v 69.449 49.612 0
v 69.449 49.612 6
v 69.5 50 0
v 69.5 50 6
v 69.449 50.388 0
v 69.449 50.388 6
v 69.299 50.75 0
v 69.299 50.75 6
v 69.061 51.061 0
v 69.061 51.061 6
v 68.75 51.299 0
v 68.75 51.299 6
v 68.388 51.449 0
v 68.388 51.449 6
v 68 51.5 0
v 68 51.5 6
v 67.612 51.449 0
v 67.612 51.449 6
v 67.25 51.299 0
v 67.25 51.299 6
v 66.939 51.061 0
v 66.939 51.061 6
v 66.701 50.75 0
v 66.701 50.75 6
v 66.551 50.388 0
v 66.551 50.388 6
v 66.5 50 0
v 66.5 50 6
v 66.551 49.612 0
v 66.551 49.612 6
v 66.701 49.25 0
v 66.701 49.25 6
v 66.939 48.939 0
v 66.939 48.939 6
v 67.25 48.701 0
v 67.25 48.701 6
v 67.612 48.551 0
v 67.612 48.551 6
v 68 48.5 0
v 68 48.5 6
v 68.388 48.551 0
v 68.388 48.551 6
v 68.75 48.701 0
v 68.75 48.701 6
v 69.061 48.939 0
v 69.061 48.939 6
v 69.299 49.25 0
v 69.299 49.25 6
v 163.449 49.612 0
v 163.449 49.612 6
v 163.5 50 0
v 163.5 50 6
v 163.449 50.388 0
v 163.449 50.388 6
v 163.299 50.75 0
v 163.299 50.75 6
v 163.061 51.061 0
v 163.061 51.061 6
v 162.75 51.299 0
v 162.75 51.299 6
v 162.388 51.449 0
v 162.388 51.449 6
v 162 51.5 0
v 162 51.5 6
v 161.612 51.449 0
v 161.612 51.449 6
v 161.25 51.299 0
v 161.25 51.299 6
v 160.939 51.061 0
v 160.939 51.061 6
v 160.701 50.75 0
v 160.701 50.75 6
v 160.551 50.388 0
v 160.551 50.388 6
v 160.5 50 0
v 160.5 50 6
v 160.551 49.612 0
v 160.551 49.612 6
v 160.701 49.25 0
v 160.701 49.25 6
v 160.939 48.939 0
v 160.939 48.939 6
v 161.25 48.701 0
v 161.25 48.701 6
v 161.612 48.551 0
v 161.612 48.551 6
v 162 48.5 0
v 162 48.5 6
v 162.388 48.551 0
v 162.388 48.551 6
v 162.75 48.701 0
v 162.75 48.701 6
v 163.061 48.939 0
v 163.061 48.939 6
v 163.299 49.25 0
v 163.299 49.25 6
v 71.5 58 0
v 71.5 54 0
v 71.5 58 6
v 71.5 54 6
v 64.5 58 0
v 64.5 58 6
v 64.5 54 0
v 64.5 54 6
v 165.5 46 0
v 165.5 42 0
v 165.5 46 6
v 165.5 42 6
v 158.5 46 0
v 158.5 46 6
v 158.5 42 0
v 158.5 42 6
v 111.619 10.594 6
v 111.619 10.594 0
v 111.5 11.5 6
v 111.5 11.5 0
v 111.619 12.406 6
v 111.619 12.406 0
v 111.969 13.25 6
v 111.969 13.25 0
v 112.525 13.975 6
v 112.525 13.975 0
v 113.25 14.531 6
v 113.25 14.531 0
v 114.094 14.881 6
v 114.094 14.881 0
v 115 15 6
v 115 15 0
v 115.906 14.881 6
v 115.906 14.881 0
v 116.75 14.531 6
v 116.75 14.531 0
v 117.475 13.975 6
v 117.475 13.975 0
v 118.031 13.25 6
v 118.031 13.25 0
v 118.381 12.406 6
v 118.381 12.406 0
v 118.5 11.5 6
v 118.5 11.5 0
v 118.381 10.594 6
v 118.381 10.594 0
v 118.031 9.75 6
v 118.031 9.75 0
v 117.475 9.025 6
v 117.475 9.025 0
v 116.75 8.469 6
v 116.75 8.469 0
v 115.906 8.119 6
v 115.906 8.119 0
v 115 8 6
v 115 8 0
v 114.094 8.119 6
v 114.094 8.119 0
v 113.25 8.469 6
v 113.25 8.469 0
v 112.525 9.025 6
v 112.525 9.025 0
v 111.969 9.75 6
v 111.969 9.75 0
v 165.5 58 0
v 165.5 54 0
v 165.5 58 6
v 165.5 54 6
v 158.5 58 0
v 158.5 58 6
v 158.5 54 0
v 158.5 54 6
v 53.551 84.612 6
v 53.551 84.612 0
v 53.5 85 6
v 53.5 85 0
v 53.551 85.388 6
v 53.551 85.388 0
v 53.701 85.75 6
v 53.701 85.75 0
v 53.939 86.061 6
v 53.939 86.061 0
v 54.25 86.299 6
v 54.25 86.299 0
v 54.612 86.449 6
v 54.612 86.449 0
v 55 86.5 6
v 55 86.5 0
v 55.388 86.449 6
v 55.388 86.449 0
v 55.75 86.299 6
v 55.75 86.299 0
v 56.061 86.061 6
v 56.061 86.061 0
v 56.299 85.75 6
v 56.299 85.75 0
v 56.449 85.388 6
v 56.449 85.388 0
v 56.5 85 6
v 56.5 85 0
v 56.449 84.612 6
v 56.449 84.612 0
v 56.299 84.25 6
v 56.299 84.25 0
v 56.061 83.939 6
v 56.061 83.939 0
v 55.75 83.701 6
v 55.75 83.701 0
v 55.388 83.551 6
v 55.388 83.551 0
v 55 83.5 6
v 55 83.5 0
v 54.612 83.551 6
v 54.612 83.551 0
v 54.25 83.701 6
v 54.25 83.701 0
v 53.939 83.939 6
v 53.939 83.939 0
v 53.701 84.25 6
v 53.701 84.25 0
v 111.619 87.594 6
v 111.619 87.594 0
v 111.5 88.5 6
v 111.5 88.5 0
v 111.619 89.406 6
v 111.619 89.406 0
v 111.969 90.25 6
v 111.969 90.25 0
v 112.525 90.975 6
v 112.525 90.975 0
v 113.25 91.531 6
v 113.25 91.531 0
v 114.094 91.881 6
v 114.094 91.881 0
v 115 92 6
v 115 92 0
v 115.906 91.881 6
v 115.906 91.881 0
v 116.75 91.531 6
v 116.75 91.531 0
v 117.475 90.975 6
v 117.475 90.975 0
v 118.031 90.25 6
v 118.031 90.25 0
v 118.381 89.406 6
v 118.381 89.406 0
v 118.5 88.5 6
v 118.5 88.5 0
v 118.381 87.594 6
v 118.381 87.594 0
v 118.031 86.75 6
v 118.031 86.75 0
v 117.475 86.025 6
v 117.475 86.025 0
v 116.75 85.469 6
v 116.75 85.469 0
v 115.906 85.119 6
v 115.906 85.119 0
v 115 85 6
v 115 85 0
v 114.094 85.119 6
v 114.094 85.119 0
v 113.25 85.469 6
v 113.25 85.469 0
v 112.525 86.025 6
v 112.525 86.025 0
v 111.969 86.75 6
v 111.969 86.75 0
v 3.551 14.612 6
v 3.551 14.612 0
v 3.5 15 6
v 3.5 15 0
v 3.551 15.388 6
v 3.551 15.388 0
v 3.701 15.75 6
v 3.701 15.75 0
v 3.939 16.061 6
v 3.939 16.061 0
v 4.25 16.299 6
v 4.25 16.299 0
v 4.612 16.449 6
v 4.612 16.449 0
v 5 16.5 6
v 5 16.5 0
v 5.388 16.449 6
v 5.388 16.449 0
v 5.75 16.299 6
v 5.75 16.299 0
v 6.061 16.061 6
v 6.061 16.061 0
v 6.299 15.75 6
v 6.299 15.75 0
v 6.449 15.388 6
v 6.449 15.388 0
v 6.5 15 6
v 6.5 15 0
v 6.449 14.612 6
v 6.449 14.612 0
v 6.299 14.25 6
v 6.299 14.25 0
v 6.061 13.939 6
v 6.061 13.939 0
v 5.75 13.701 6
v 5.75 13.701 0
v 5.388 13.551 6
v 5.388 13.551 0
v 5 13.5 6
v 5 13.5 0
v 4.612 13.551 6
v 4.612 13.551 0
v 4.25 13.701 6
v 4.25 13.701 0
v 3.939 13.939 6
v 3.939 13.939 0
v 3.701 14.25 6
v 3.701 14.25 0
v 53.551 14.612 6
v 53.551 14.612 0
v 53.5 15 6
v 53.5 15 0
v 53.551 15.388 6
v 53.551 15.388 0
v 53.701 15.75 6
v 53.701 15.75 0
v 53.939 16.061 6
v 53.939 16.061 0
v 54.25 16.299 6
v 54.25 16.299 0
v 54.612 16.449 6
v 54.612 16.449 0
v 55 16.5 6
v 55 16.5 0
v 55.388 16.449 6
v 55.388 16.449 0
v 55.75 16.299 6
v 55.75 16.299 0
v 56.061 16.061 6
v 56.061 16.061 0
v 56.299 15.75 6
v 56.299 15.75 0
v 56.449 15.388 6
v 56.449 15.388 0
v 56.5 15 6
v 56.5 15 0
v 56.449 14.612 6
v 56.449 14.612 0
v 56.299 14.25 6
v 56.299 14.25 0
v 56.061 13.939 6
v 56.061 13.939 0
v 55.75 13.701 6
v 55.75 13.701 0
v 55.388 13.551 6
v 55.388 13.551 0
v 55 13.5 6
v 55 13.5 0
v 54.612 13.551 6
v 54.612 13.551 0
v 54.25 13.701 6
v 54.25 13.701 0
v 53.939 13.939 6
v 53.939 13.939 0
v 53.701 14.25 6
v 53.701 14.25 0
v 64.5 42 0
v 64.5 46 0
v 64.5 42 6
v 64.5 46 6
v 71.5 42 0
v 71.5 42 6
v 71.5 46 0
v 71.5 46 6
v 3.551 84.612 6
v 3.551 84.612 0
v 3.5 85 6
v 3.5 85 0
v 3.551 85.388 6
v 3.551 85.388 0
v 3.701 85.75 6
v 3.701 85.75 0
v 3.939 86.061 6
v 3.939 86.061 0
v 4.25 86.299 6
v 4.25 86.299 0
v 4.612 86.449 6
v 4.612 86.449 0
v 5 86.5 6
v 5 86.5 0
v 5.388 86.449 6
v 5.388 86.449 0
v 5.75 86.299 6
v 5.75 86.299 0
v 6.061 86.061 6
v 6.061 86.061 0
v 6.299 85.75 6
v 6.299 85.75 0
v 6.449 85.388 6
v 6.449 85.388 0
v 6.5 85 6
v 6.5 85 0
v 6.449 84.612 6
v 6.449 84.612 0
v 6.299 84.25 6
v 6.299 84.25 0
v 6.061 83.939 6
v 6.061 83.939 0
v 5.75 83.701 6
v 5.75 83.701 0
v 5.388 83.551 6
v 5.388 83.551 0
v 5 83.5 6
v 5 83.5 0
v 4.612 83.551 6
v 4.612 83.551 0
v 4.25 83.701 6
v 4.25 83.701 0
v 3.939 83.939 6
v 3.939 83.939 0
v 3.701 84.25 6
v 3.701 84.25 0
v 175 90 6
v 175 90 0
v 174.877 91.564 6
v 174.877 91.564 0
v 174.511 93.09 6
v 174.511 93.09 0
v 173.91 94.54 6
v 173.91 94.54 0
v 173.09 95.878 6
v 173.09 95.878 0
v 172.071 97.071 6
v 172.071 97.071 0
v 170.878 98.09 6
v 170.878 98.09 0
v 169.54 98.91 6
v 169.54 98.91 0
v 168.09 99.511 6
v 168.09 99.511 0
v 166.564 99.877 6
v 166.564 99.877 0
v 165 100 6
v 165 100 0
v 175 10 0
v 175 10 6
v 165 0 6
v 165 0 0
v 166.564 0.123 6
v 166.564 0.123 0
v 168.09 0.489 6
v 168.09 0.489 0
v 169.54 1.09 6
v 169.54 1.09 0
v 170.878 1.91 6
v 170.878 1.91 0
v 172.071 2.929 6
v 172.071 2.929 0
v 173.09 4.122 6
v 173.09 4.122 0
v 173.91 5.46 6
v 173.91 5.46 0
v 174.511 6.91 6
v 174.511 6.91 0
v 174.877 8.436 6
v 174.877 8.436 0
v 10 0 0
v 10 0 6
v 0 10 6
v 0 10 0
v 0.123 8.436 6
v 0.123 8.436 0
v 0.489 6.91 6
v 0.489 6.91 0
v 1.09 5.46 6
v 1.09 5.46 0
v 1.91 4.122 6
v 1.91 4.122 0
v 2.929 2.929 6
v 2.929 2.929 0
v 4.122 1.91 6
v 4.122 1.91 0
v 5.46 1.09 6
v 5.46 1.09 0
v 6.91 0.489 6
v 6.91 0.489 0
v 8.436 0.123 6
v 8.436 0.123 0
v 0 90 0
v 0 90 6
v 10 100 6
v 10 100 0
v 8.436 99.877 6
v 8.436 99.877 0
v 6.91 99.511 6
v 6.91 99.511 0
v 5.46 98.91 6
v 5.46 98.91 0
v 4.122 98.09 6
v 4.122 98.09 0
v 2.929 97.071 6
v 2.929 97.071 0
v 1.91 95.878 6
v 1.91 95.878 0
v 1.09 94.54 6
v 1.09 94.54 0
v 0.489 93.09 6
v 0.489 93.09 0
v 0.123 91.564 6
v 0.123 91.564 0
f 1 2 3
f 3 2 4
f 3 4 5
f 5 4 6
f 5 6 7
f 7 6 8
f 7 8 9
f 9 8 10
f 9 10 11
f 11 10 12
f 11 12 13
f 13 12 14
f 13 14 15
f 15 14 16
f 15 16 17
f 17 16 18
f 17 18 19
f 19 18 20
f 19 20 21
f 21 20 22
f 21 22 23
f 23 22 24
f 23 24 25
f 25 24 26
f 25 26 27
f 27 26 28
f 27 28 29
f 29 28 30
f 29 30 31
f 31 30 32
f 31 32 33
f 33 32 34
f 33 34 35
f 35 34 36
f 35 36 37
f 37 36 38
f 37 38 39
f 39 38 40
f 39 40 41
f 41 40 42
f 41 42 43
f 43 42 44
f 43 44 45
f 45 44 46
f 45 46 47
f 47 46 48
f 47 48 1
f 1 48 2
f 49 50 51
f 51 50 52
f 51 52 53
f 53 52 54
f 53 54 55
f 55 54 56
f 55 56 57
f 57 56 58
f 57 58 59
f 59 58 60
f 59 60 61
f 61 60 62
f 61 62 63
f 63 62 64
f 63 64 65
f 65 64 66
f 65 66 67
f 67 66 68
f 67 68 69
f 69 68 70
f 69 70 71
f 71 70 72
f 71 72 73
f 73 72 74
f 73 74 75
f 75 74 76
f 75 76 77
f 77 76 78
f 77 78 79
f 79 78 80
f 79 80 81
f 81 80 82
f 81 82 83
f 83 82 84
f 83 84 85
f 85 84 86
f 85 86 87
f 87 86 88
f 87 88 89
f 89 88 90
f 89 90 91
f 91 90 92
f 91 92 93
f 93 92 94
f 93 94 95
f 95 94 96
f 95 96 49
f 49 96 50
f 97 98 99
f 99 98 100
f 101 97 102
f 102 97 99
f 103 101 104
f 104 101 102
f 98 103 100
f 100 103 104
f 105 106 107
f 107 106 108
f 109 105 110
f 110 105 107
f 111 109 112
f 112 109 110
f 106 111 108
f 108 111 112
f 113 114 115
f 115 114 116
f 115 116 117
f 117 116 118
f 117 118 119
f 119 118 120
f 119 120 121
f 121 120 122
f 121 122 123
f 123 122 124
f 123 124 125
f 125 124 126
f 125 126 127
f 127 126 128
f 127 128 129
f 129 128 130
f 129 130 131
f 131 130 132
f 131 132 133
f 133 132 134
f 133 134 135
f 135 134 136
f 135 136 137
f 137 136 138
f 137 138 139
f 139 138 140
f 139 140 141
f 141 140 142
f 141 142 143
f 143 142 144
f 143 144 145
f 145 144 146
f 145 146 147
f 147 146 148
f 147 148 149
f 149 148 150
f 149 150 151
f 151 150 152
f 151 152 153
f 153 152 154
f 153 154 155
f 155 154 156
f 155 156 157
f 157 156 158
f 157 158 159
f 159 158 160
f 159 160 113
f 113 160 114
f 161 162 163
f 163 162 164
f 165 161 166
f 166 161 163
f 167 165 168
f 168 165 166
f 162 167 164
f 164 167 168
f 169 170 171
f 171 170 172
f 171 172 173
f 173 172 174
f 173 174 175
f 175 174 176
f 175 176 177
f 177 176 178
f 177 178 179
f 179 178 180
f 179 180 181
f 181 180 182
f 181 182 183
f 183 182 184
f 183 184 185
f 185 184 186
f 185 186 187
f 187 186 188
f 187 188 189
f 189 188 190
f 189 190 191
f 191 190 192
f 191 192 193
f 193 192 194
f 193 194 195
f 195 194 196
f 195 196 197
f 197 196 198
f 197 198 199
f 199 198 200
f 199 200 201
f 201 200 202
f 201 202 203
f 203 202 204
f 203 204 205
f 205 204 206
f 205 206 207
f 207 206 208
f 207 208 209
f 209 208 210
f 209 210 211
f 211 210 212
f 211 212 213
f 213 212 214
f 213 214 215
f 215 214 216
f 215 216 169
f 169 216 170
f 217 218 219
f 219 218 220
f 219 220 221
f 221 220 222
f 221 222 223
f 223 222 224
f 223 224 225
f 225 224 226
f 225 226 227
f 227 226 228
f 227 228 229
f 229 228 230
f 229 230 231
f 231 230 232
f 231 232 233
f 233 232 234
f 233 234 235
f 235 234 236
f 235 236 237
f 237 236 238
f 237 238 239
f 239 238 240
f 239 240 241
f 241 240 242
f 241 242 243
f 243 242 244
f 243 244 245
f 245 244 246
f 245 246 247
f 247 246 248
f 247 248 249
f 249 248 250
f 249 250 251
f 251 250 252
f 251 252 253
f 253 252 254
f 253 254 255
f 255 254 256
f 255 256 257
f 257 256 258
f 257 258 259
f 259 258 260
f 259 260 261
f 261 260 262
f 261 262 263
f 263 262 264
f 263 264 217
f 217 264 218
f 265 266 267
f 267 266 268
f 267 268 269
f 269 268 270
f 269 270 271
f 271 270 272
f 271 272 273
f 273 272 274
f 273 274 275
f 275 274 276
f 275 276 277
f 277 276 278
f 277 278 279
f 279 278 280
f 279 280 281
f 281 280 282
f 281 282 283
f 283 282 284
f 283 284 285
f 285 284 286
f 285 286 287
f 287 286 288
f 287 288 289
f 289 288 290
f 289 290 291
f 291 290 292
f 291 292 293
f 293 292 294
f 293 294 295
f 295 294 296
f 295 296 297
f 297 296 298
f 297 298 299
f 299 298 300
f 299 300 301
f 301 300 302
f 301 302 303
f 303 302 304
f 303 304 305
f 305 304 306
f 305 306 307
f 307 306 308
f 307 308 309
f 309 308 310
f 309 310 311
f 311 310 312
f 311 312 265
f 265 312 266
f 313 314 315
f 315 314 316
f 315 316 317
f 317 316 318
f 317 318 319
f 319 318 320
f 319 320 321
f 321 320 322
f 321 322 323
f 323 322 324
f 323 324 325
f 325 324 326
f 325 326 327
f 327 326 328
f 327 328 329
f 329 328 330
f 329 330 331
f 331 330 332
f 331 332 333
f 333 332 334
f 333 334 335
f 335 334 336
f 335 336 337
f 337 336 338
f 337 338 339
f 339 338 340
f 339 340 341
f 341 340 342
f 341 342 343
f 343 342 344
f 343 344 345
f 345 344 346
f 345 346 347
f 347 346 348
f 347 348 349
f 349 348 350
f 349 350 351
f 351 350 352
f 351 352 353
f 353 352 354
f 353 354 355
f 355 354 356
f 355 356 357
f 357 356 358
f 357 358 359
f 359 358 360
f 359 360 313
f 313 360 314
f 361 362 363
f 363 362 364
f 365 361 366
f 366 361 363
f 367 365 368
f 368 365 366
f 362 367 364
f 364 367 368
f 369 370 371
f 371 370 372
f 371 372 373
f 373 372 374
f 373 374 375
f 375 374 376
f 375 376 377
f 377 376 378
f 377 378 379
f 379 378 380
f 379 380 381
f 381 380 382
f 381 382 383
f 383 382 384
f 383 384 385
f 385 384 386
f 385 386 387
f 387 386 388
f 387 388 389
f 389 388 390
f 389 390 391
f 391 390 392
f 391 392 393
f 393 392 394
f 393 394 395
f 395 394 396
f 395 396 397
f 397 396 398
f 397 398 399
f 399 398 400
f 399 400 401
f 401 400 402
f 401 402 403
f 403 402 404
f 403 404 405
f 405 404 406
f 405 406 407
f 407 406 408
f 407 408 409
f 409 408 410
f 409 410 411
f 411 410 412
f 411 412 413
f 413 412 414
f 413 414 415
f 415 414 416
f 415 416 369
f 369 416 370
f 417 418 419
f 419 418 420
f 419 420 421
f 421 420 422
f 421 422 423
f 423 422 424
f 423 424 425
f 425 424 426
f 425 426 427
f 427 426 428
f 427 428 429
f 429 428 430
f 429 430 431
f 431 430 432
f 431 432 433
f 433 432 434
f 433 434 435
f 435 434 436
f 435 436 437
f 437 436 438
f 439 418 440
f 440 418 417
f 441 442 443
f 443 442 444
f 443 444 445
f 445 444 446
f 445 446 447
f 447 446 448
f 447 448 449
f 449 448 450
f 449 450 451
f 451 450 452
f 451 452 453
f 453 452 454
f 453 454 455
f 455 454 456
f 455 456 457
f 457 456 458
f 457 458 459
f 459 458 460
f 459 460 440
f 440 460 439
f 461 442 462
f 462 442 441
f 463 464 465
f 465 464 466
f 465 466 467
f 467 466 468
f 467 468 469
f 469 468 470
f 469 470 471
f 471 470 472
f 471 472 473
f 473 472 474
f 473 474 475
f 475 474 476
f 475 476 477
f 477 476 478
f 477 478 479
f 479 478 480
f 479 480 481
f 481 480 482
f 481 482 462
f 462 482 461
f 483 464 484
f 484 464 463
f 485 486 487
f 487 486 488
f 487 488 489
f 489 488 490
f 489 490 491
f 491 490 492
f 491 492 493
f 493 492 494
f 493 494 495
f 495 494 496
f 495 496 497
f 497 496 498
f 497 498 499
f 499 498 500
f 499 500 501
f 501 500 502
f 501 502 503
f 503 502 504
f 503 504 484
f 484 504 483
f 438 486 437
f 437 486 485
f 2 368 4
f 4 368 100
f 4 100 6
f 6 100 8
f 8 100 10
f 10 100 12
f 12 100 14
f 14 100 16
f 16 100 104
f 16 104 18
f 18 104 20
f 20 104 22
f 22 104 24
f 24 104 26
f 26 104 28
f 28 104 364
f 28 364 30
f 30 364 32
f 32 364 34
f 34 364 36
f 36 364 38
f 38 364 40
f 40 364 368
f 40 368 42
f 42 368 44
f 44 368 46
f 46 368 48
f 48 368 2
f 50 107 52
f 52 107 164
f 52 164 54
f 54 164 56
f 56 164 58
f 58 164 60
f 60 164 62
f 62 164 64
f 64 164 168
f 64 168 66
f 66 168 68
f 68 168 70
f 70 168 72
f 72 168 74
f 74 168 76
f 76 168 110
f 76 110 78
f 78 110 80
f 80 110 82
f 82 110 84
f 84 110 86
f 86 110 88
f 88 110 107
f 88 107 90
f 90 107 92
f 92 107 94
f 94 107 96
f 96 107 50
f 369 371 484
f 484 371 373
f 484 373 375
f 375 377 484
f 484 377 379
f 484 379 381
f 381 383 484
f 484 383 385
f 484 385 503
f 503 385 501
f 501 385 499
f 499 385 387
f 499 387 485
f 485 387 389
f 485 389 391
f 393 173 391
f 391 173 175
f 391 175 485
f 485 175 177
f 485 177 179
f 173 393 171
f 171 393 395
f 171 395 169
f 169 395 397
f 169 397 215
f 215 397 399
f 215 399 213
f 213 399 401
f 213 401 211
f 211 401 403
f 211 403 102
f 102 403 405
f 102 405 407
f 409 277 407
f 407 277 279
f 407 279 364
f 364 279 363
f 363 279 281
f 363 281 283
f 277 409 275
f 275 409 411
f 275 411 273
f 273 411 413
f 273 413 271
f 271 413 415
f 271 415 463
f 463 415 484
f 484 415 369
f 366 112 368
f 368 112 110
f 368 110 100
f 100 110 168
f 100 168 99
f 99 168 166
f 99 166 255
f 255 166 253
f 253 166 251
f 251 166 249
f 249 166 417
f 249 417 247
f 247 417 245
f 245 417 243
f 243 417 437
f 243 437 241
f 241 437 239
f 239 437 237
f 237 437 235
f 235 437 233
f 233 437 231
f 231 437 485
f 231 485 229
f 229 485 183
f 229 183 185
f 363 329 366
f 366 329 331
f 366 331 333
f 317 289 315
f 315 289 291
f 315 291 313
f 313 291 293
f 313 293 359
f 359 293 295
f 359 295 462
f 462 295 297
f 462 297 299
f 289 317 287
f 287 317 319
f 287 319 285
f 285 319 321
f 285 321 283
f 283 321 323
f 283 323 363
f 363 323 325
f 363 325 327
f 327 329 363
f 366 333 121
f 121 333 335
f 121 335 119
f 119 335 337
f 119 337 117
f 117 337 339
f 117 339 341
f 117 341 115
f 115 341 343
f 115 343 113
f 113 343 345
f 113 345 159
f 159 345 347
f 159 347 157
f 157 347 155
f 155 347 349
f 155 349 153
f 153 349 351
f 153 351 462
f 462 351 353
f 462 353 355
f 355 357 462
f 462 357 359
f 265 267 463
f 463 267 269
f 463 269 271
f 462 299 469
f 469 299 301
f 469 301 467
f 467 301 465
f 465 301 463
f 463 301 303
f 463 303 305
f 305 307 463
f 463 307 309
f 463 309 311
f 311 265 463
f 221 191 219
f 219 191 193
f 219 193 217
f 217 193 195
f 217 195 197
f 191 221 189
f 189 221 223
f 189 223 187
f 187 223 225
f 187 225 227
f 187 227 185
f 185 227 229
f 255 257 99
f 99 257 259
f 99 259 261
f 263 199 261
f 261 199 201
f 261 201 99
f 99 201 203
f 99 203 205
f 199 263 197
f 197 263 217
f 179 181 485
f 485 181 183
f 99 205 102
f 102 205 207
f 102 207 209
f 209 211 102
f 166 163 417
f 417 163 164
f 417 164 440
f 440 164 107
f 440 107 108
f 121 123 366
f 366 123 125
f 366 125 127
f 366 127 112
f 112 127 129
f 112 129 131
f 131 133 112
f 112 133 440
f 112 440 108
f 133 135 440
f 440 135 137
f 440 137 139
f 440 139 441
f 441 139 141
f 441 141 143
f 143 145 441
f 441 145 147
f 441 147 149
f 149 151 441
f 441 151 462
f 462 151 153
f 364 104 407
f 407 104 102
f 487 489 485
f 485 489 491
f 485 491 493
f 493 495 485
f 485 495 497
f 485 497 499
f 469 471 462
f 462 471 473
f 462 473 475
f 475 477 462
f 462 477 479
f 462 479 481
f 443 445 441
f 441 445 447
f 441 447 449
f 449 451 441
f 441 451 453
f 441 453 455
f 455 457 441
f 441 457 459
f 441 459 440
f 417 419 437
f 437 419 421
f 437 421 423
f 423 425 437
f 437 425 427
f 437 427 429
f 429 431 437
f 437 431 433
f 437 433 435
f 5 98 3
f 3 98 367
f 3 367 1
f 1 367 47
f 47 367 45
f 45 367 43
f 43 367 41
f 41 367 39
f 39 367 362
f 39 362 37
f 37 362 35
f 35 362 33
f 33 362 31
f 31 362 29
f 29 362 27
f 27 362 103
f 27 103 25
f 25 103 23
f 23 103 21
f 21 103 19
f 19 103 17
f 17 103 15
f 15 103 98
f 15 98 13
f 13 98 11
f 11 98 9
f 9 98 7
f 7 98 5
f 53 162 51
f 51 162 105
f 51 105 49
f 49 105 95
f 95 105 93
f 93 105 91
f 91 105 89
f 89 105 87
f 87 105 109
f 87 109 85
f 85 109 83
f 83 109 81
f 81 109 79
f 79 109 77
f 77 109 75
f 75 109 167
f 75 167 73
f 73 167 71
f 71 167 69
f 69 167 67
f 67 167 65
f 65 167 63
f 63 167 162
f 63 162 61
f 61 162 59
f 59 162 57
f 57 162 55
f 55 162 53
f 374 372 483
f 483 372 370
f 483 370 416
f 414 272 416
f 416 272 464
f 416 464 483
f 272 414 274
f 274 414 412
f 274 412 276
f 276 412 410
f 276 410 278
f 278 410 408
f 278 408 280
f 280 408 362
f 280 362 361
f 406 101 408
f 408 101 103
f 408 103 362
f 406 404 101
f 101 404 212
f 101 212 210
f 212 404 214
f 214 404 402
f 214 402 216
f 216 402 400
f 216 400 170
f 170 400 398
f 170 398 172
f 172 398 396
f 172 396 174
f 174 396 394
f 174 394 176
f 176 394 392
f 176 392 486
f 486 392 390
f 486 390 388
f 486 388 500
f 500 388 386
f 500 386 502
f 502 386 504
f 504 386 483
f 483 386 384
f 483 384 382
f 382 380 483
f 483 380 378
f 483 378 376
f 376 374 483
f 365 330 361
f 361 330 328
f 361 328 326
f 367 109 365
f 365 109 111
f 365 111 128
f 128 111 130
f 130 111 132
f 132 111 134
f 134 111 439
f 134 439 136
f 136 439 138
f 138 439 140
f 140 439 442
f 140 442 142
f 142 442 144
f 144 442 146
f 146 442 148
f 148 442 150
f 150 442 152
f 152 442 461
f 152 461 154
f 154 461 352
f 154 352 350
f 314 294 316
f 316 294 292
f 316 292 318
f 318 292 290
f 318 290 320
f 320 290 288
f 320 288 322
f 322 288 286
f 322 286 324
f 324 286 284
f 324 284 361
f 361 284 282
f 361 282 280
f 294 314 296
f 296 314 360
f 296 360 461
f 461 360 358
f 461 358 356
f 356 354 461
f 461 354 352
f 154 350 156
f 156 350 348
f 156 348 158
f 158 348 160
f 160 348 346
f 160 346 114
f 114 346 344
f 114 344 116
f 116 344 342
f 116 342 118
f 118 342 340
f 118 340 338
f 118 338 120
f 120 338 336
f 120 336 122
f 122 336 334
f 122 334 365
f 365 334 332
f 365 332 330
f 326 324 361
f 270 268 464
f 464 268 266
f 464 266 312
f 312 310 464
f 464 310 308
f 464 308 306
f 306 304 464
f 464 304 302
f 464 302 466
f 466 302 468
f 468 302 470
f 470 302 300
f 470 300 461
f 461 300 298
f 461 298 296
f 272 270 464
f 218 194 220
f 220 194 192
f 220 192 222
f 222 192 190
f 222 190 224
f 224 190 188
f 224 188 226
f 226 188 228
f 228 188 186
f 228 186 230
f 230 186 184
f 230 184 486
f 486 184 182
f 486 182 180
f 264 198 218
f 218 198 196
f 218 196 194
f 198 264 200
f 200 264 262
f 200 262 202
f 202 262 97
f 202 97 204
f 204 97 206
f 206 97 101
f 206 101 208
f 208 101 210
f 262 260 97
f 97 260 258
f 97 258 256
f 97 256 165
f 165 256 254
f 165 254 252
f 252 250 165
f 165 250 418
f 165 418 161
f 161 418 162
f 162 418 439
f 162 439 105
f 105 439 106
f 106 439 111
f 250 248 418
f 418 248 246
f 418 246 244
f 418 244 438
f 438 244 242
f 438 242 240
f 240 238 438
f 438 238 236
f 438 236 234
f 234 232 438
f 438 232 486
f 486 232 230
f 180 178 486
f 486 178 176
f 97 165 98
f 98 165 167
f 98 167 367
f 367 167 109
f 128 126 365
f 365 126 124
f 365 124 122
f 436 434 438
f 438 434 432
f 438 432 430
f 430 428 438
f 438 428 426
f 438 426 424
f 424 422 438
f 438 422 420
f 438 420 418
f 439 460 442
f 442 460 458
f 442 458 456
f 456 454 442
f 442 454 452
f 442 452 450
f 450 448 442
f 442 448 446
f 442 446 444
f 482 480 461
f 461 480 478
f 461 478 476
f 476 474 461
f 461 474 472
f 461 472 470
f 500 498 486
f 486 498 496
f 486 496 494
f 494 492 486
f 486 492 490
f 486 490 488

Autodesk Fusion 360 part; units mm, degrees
sketch "Sketch1" plane through (0, 0, 0) normal (0, 0, 1) x (1, 0, 0)
  line L0 (10, 0) -> (165, 0)
  line L1 (175, 10) -> (175, 90)
  line L2 (165, 100) -> (10, 100)
  line L3 (0, 90) -> (0, 10)
  line L4 (5, 85) -> (55, 85)
  line L5 (55, 85) -> (55, 15)
  line L6 (55, 15) -> (5, 15)
  line L7 (5, 15) -> (5, 85)
  line L8 (5, 50) -> (0, 50)
  circle A0 centre (5, 85) radius 1.5
  circle A1 centre (55, 85) radius 1.5
  circle A2 centre (5, 15) radius 1.5
  circle A3 centre (55, 15) radius 1.5
  line L9 (55, 100) -> (55, 0)
  line L10 (65, 100) -> (65, 0)
  line L11 (165, 0) -> (165, 100)
  line L12 (65, 57.5) -> (71, 57.5)
  line L13 (71, 57.5) -> (71, 42.5)
  line L14 (71, 42.5) -> (65, 42.5)
  line L15 (65, 42.5) -> (65, 57.5)
  line L16 (65, 57.5) -> (71, 57.5)
  line L17 (71, 57.5) -> (71, 54.5)
  line L18 (71, 54.5) -> (65, 54.5)
  line L19 (65, 54.5) -> (65, 57.5)
  line L20 (71, 42.5) -> (65, 42.5)
  line L21 (65, 42.5) -> (65, 45.5)
  line L22 (65, 45.5) -> (71, 45.5)
  line L23 (71, 45.5) -> (71, 42.5)
  line L24 (65, 100) -> (165, 100)
  line L25 (115, 100) -> (115, 0)
  line L26 (159, 57.5) -> (159, 42.5)
  line L27 (159, 54.5) -> (165, 54.5)
  line L28 (165, 57.5) -> (159, 57.5)
  line L29 (165, 45.5) -> (159, 45.5)
  line L30 (159, 42.5) -> (165, 42.5)
  circle A4 centre (115, 88.5) radius 3.5
  circle A5 centre (115, 11.5) radius 3.5
  line L31 (115, 88.5) -> (115, 11.5)
  arc A6 (10, 100) -> (0, 90) centre (10, 90) ccw
  arc A7 (0, 10) -> (10, 0) centre (10, 10) ccw
  arc A8 (175, 90) -> (165, 100) centre (165, 90) ccw
  arc A9 (165, 0) -> (175, 10) centre (165, 10) ccw
  line L32 (64.5, 58) -> (71.5, 58)
  line L33 (71.5, 58) -> (71.5, 54)
  line L34 (71.5, 54) -> (64.5, 54)
  line L35 (64.5, 54) -> (64.5, 58)
  line L36 (71.5, 42) -> (64.5, 42)
  line L37 (64.5, 42) -> (64.5, 46)
  line L38 (64.5, 46) -> (71.5, 46)
  line L39 (71.5, 46) -> (71.5, 42)
  line L40 (159, 57.5) -> (165, 57.5)
  line L41 (165, 57.5) -> (165, 54.5)
  line L42 (165, 54.5) -> (159, 54.5)
  line L43 (159, 54.5) -> (159, 57.5)
  line L44 (159, 45.5) -> (165, 45.5)
  line L45 (165, 45.5) -> (165, 42.5)
  line L46 (165, 42.5) -> (159, 42.5)
  line L47 (159, 42.5) -> (159, 45.5)
  line L48 (158.5, 46) -> (165.5, 46)
  line L49 (165.5, 46) -> (165.5, 42)
  line L50 (165.5, 42) -> (158.5, 42)
  line L51 (158.5, 42) -> (158.5, 46)
  line L52 (158.5, 58) -> (165.5, 58)
  line L53 (165.5, 58) -> (165.5, 54)
  line L54 (165.5, 54) -> (158.5, 54)
  line L55 (158.5, 54) -> (158.5, 58)
  point P0 (0, 100)
  point P1 (65, 50)
  point P2 (65, 50)
  point P3 (115, 50)
  point P4 (115, 50)
  dimension "d1" = 50
  dimension "d2" = 70
  dimension "d3" = 100
  dimension "d4" = 90
  dimension "d5" = 5
  dimension "d6" = 3
  dimension "d7" = 3
  dimension "d8" = 3
  dimension "d9" = 3
  dimension "d11" = 120
  dimension "d12" = 10
  dimension "d13" = 10
  dimension "d14" = 6
  dimension "d15" = 15
  dimension "d16" = 3
  dimension "d17" = 3
  dimension "d18" = 77
  dimension "d19" = 7
  dimension "d20" = 7
  dimension "d21" = 10
  dimension "d22" = 10
  dimension "d23" = 10
  dimension "d24" = 10
  dimension "d27" = -0.5
  dimension "d28" = -0.5
  dimension "d29" = -0.5
  dimension "d30" = -0.5
extrude "Extrude1" add sketch "Sketch1" along normal blind 6 contours L0 L3 L6 L7 L8 A2 A3 L9 A7 | L0 L2 L5 A1 A3 L9 L10 L15 L32 L34 L35 L36 L37 L38 | L0 L2 L10 L13 L24 L25 A4 A5 L31 L32 L33 L34 L36 L38 L39 | L2 L3 L4 L7 L8 A0 A1 L9 A6 | L0 L2 L11 L24 L25 L26 A4 A5 L31 L48 L50 L51 L52 L54 L55 | L4 L5 L6 L7 A0 A1 A2 A3 L9 | L1 L11 A8 A9 L48 L49 L50 L52 L53 L54 | L10 L13 L15 L34 L38 | L11 L26 L48 L54
sketch "Sketch2" plane through (0, 0, 6) normal (0, 0, 1) x (-1, 0, 0)
  circle A0 centre (-5, -85) radius 1.5
  line L0 (-64.5, -46) -> (-71.5, -46)
  line L1 (-71.5, -46) -> (-71.5, -42)
  line L2 (-71.5, -42) -> (-64.5, -42)
  line L3 (-64.5, -42) -> (-64.5, -46)
  circle A1 centre (-55, -15) radius 1.5
  circle A2 centre (-5, -15) radius 1.5
  circle A3 centre (-115, -88.5) radius 3.5
  circle A4 centre (-55, -85) radius 1.5
  line L4 (-165.5, -54) -> (-158.5, -54)
  line L5 (-158.5, -54) -> (-158.5, -58)
  line L6 (-158.5, -58) -> (-165.5, -58)
  line L7 (-165.5, -58) -> (-165.5, -54)
  circle A5 centre (-115, -11.5) radius 3.5
  line L8 (-165.5, -42) -> (-158.5, -42)
  line L9 (-158.5, -42) -> (-158.5, -46)
  line L10 (-158.5, -46) -> (-165.5, -46)
  line L11 (-165.5, -46) -> (-165.5, -42)
  line L12 (-71.5, -54) -> (-64.5, -54)
  line L13 (-64.5, -54) -> (-64.5, -58)
  line L14 (-64.5, -58) -> (-71.5, -58)
  line L15 (-71.5, -58) -> (-71.5, -54)
  line L16 (-165, -100) -> (-10, -100)
  arc A6 (-10, -100) -> (0, -90) centre (-10, -90) ccw
  line L17 (0, -90) -> (0, -10)
  arc A7 (0, -10) -> (-10, 0) centre (-10, -10) ccw
  line L18 (-10, 0) -> (-165, 0)
  arc A8 (-165, 0) -> (-175, -10) centre (-165, -10) ccw
  line L19 (-175, -10) -> (-175, -90)
  arc A9 (-175, -90) -> (-165, -100) centre (-165, -90) ccw
  line L20 (-68, -54) -> (-68, -46)
  line L21 (-162, -54) -> (-162, -46)
  circle A10 centre (-162, -50) radius 1.5
  circle A11 centre (-68, -50) radius 1.5
  dimension "d31" = 3
  dimension "d32" = 3
extrude "Extrude2" cut sketch "Sketch2" against normal blind 10 contours L20 A11 | L20 A11 | L21 A10 | L21 A10
equation "d18 = ( ( 70 + 84 ) / 2 ) * 1 mm"
